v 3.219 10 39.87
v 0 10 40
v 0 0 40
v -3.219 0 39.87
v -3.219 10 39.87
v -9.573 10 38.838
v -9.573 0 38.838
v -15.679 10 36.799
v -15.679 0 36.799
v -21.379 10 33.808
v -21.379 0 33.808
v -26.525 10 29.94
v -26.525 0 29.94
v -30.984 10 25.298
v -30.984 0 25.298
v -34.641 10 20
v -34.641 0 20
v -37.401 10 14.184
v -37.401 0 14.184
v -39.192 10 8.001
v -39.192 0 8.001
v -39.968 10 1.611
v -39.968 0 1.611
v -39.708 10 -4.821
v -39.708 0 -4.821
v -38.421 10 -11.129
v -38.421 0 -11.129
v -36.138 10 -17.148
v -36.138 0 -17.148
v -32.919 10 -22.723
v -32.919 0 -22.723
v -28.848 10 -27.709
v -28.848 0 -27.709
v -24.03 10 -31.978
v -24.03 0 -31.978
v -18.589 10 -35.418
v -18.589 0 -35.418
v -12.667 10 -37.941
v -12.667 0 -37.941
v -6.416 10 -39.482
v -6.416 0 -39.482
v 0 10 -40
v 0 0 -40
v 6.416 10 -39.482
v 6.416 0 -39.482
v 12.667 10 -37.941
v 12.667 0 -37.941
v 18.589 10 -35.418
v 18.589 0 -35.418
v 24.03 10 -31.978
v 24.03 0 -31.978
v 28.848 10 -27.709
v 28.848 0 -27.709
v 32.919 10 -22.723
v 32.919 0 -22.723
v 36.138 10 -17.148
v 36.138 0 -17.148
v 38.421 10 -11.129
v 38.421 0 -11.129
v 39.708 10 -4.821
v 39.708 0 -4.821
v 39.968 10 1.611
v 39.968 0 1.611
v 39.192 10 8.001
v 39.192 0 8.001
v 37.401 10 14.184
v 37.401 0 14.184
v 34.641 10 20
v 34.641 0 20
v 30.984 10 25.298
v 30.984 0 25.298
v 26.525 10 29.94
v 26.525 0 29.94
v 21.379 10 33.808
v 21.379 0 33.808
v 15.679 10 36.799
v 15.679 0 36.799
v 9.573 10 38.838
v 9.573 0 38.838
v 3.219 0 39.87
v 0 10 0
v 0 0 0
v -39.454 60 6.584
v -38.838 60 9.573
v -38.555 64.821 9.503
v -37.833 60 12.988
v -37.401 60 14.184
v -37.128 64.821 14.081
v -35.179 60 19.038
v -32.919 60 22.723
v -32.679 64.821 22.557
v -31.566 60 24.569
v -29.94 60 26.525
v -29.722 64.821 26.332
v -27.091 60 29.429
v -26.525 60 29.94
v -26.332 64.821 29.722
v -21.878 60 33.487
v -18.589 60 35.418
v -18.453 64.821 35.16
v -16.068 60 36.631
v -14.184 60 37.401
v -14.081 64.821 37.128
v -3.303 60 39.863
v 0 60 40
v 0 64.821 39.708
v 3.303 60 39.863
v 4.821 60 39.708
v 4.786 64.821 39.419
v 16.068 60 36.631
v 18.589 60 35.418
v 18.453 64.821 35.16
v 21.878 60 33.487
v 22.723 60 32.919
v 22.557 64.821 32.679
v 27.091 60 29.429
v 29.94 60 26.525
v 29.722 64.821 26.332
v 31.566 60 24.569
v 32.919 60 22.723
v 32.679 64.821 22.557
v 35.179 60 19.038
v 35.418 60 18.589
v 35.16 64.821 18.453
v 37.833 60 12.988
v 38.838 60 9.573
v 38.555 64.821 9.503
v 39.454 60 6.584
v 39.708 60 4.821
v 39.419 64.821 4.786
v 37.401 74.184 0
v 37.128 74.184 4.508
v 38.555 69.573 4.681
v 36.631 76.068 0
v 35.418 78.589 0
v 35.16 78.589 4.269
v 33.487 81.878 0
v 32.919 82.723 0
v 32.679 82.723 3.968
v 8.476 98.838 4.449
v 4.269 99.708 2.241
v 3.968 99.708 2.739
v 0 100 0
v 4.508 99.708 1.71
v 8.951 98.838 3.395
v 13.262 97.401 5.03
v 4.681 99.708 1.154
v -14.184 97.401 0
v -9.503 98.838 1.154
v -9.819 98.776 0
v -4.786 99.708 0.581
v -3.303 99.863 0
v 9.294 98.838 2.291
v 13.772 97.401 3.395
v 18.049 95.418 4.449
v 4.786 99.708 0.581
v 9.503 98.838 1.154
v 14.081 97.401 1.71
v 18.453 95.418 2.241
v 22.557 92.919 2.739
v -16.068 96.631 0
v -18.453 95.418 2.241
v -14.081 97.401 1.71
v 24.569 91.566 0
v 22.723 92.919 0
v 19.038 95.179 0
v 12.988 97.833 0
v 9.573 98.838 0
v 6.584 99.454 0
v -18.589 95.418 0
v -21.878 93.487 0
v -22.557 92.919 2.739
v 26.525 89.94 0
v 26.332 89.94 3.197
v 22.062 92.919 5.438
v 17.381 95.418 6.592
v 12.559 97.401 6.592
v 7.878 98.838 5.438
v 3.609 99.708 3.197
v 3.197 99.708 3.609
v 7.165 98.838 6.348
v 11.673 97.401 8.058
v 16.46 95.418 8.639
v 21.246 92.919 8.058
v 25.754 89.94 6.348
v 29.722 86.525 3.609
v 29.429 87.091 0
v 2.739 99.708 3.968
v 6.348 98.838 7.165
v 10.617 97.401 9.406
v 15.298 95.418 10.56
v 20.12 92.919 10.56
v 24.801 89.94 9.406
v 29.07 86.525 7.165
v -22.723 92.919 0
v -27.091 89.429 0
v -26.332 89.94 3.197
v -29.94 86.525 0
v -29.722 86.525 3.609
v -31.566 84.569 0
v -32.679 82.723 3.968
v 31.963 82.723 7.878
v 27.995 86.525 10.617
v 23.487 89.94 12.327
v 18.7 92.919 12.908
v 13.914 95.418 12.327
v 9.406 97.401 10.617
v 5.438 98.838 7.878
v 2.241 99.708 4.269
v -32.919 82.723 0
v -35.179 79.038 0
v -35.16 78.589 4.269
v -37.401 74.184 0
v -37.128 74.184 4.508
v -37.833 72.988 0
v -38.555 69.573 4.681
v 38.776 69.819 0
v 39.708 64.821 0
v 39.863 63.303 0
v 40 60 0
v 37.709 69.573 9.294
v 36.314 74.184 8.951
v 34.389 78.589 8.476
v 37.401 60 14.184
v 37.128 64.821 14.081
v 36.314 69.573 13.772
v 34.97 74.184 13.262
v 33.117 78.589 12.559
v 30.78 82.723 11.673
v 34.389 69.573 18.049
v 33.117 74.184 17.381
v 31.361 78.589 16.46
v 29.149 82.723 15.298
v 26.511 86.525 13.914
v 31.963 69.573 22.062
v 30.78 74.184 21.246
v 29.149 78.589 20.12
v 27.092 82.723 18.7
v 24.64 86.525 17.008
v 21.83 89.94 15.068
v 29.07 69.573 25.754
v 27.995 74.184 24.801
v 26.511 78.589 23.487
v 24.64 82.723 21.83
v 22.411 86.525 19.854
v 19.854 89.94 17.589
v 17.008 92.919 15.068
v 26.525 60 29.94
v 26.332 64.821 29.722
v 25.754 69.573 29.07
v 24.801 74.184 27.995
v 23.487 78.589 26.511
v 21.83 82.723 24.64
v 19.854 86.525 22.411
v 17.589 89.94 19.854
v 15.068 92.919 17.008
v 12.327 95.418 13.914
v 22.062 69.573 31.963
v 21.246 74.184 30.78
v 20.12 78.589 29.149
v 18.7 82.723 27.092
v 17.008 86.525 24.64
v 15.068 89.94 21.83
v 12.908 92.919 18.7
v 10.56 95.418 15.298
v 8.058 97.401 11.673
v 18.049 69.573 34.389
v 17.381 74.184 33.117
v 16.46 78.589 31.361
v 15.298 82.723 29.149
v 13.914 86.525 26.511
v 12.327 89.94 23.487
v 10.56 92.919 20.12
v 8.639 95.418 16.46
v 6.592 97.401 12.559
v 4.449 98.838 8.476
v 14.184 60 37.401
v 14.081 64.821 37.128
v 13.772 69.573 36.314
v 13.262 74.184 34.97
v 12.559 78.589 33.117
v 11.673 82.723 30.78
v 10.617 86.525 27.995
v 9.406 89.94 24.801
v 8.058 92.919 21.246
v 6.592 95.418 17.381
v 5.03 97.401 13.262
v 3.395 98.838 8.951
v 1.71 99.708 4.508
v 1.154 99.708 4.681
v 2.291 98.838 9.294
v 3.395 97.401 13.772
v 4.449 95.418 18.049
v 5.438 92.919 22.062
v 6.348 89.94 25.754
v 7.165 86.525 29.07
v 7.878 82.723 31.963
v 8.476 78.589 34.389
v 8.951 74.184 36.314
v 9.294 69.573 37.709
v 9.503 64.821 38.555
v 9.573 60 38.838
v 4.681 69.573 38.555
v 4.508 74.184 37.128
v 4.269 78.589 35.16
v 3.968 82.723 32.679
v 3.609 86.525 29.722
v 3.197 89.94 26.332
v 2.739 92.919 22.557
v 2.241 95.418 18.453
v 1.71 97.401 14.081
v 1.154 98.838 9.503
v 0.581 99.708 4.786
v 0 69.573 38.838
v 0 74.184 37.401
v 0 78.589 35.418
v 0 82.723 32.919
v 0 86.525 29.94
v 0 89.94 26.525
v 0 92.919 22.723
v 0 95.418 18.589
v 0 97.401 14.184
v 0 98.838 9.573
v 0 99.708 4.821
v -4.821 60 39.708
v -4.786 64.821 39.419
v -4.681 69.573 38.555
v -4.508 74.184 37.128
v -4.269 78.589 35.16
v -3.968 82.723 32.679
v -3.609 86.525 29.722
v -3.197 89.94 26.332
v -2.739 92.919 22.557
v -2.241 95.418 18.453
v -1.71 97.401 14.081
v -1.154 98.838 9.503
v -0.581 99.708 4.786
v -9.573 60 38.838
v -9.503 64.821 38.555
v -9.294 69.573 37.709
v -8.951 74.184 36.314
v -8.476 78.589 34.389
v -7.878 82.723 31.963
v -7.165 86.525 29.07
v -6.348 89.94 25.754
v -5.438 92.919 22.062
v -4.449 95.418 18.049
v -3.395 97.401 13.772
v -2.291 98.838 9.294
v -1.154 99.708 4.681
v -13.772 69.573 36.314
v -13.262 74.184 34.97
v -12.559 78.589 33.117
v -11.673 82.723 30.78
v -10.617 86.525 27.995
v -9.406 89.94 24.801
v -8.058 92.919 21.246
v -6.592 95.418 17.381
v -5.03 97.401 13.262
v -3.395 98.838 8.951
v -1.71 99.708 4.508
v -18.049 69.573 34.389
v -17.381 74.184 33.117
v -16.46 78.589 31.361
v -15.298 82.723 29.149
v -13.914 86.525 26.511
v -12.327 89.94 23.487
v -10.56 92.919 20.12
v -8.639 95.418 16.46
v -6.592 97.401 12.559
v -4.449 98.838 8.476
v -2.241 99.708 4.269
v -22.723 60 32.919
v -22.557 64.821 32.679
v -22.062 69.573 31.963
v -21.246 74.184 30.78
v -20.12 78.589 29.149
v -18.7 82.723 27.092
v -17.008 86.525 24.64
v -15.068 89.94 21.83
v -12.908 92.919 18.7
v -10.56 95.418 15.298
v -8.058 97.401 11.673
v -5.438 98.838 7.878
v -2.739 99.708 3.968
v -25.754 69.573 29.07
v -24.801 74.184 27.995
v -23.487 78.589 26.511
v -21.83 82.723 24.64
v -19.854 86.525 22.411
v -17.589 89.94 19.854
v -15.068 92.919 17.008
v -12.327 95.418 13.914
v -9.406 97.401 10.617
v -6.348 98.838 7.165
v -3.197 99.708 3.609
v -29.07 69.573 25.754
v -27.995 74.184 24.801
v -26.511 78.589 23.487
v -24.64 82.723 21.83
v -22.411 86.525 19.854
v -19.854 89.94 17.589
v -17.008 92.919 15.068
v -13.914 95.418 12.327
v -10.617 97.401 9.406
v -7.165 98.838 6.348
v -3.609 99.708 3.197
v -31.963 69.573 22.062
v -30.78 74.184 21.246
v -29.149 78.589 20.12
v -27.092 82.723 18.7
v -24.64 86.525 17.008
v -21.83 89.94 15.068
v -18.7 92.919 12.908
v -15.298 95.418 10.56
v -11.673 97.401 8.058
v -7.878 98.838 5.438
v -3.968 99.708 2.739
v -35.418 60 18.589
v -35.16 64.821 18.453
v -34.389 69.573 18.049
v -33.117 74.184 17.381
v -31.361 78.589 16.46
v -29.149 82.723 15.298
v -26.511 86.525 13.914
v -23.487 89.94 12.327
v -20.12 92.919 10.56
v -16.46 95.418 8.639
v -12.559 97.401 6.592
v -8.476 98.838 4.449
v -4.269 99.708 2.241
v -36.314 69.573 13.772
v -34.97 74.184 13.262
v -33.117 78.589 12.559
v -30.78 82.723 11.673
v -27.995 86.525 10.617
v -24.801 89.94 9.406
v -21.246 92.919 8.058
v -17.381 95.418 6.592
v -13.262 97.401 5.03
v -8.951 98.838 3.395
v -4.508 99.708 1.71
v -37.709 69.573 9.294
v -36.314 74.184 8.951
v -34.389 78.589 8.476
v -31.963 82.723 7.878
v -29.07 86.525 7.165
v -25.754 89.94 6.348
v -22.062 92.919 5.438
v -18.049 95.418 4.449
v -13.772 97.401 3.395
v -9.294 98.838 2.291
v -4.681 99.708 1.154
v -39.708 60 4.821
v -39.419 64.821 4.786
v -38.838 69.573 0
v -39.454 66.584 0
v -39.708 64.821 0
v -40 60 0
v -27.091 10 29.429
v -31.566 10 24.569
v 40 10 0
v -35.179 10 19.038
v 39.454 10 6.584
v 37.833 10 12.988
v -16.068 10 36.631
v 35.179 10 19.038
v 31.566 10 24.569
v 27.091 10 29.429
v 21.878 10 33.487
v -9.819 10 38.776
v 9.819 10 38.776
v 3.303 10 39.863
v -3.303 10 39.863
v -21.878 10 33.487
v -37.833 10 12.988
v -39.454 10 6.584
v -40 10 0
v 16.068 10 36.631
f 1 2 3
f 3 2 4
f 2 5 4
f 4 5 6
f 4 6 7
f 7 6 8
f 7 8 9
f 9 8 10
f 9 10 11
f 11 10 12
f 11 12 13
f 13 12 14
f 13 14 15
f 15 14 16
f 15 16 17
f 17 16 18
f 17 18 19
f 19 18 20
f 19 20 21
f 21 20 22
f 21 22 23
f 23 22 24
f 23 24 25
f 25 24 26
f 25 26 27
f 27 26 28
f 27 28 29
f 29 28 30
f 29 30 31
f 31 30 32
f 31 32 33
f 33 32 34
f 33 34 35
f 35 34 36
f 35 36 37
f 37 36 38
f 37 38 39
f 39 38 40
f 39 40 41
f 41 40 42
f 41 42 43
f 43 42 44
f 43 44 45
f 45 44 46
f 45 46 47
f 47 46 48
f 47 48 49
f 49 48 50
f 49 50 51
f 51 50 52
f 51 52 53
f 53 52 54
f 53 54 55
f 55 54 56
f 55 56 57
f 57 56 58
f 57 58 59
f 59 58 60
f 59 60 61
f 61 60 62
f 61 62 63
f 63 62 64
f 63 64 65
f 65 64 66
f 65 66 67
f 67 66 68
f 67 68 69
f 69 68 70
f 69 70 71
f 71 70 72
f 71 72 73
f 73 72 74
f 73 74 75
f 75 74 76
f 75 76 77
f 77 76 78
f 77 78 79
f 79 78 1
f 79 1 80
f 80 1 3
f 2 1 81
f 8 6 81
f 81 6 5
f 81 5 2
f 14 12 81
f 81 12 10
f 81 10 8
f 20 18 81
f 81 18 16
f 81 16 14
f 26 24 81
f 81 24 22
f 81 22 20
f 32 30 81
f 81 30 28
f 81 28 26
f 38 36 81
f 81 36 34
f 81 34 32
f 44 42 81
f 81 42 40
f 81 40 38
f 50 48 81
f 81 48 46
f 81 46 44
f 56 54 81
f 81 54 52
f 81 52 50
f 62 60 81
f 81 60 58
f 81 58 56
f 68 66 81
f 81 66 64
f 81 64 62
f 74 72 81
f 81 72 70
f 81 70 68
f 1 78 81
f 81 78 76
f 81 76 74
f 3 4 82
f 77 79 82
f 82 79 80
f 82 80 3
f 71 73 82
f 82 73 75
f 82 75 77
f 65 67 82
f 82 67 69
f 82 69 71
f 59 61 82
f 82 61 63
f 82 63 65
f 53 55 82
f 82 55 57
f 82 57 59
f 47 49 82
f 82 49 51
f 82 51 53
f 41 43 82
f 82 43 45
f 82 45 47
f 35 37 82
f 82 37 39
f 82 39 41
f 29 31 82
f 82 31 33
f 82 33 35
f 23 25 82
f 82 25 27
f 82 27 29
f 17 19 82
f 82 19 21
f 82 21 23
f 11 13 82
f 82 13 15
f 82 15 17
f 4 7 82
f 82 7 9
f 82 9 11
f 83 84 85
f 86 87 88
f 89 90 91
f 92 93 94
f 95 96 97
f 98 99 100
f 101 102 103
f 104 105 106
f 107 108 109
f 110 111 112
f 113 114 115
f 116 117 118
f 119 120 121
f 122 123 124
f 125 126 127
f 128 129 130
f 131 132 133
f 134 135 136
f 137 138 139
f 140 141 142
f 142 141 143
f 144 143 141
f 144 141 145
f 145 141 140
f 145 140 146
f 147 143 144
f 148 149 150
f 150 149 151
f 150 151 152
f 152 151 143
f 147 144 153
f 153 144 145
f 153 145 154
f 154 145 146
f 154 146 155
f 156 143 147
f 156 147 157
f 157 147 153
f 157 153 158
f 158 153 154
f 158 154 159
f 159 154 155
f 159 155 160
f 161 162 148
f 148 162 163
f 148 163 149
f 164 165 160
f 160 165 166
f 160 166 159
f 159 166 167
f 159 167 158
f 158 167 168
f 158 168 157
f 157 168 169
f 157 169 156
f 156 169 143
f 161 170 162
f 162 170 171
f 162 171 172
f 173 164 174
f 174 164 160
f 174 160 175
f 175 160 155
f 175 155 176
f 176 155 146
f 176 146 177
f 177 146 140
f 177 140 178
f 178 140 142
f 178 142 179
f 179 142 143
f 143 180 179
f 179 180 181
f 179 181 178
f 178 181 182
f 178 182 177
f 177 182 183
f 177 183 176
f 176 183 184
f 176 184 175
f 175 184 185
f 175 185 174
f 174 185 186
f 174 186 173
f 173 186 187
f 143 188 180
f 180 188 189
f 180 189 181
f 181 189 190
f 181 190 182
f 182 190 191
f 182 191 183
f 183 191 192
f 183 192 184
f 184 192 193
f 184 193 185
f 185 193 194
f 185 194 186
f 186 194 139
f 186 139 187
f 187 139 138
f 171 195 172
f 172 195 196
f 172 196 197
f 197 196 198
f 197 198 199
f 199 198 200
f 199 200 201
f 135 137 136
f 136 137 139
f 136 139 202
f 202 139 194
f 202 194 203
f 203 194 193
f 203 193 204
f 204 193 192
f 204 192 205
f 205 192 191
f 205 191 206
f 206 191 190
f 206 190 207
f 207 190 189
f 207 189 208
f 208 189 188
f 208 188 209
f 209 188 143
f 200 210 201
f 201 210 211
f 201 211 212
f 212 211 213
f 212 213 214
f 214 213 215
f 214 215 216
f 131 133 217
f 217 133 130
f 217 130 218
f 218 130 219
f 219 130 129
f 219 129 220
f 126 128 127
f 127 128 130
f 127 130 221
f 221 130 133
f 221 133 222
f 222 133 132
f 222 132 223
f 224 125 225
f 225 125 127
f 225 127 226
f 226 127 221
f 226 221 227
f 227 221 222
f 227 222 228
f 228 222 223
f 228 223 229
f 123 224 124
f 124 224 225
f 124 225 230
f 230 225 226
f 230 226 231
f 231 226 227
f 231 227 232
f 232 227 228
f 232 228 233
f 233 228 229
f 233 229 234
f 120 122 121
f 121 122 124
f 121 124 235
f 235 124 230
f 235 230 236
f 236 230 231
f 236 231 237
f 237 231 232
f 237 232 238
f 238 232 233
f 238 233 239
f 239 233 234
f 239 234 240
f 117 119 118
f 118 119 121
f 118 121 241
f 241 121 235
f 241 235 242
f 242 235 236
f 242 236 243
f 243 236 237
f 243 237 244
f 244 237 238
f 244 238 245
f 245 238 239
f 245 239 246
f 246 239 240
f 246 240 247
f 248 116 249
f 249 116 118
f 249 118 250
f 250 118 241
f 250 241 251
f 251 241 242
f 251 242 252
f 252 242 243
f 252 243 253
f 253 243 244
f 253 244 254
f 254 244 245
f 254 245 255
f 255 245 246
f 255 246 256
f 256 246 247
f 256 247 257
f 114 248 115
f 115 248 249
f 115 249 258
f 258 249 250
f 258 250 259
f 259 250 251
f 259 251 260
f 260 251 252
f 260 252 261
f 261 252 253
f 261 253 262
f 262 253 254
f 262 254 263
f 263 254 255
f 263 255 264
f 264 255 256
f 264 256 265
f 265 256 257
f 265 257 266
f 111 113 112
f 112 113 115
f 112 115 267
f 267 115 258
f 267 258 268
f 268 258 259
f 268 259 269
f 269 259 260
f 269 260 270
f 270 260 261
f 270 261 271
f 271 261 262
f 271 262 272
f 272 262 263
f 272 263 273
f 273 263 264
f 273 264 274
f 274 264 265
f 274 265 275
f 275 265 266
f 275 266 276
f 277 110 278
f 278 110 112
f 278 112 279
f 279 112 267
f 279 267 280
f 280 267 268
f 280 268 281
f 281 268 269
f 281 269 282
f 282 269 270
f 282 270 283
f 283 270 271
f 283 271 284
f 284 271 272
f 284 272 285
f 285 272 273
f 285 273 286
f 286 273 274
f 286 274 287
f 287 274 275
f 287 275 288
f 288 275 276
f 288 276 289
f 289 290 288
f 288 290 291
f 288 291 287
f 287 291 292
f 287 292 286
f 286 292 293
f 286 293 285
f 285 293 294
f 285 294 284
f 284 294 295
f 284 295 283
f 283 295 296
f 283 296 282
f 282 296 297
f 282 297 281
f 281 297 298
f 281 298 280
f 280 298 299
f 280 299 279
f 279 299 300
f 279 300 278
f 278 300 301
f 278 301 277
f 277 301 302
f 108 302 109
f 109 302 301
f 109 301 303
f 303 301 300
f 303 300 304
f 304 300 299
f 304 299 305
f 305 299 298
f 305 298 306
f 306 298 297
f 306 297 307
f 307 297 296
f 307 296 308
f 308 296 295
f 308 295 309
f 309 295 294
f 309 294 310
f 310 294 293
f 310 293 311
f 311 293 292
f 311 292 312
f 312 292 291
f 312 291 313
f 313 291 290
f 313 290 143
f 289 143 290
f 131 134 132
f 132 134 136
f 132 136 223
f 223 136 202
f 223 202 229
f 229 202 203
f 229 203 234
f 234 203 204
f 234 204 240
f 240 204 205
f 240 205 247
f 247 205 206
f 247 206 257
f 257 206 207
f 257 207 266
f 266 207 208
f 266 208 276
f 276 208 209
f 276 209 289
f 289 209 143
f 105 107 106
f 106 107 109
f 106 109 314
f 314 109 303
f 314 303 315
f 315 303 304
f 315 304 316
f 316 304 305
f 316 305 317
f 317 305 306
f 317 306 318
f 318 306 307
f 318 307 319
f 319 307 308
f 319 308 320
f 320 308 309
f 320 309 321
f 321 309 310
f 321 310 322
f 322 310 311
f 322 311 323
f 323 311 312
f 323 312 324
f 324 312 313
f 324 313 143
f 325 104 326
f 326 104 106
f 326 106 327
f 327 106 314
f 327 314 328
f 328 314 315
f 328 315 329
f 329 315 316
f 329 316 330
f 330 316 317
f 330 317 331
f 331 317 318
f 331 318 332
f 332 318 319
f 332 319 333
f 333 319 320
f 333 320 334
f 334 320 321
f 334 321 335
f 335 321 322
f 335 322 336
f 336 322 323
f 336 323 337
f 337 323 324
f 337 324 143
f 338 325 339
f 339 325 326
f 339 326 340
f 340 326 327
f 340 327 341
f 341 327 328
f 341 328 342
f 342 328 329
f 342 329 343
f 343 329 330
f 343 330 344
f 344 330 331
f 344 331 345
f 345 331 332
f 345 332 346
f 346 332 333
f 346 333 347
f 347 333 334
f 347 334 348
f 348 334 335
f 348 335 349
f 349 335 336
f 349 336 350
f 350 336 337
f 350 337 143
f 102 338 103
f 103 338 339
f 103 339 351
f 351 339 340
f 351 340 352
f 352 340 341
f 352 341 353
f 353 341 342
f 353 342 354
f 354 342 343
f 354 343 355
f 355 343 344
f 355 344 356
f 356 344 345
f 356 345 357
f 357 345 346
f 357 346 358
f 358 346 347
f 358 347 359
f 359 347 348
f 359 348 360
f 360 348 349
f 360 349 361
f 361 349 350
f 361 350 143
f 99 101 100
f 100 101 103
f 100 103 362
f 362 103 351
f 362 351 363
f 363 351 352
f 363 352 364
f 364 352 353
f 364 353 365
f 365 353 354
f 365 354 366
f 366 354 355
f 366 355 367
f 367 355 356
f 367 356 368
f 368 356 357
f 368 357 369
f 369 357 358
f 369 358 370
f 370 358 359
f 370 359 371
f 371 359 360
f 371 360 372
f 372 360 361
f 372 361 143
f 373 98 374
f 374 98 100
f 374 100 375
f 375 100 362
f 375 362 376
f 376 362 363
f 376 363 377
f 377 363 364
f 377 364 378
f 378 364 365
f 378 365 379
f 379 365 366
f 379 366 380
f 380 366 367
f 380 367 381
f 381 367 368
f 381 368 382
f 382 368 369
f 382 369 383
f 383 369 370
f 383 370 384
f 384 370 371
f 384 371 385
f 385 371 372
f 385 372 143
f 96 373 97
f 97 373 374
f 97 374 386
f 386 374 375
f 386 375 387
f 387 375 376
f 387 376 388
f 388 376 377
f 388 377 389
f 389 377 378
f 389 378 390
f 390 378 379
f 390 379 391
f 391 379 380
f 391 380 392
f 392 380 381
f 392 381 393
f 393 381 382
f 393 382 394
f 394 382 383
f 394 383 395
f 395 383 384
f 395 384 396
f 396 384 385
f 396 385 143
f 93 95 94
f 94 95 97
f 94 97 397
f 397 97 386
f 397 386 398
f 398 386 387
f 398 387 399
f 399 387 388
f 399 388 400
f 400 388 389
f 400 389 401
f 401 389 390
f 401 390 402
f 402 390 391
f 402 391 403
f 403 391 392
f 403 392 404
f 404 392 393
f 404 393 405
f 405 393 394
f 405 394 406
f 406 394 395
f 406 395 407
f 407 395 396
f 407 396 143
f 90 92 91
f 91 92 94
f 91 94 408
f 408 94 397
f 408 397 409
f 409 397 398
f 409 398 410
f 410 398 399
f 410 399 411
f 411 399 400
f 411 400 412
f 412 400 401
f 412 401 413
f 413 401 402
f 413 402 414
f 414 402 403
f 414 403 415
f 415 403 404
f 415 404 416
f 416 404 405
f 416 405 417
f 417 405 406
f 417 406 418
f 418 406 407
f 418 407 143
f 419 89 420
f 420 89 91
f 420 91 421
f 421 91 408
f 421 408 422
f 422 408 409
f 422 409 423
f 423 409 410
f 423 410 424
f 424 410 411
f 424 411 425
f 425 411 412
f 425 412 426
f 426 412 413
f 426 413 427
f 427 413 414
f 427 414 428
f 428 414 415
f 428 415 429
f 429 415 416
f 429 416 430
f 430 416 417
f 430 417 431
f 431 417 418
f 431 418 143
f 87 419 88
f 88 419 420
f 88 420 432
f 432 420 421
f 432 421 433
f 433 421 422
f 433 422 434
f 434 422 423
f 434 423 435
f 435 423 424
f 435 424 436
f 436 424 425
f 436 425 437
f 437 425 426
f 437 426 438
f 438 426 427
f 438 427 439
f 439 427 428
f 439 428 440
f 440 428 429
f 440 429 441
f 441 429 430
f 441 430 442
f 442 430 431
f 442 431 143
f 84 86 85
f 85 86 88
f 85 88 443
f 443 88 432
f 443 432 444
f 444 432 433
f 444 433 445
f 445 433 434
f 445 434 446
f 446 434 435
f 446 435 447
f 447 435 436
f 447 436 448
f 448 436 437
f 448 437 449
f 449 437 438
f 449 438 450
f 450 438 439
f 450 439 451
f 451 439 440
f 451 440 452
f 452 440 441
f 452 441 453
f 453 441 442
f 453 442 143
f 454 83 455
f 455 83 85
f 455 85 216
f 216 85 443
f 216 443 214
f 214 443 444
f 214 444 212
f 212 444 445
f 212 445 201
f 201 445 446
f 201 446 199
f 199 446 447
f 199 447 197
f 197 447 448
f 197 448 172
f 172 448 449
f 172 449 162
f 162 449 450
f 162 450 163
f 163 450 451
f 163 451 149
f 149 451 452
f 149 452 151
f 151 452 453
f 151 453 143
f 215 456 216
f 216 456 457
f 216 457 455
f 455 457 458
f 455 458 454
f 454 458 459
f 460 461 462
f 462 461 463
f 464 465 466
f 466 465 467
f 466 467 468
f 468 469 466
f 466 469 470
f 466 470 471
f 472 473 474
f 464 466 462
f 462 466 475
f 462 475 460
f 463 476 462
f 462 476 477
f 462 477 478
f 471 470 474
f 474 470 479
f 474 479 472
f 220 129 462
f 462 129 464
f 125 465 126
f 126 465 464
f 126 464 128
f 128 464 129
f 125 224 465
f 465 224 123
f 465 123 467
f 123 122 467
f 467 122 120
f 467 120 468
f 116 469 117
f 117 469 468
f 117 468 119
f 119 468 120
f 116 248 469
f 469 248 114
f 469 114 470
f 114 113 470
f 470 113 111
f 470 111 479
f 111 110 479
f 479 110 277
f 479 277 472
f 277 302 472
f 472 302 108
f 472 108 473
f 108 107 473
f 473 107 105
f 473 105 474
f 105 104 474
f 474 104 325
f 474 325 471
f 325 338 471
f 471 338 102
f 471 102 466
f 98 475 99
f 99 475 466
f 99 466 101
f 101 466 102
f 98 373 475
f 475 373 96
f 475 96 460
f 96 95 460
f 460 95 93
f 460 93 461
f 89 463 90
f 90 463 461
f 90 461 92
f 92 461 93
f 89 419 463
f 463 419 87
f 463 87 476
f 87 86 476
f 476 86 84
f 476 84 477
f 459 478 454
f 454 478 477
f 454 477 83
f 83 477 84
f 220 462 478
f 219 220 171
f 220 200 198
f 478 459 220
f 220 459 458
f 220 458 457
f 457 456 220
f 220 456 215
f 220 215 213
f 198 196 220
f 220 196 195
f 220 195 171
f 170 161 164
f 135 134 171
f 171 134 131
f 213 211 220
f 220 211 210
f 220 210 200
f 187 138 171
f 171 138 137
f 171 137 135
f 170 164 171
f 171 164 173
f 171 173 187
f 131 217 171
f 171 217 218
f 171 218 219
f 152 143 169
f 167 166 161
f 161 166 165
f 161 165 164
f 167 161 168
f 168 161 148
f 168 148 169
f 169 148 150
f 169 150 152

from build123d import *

# Parameters (mm, degrees)
SKETCH_1_R      = 40
EXTRUDE_1_DEPTH = 10
REVOLVE_1_ANGLE = 180


with BuildPart() as part:
    # 草图1 → 凸台-拉伸1 (new body)
    with BuildSketch(Plane(origin=(0, 0, 0), x_dir=(1, 0, 0), z_dir=(0, 1, 0))):
        Circle(SKETCH_1_R)
    extrude(amount=EXTRUDE_1_DEPTH)


with BuildPart() as body_2:
    # 草图2 → 旋转1 (revolve)
    with BuildSketch(Plane.XY):
        with BuildLine():
            ThreePointArc((40, 60), (28.284271247, 88.284271247), (0, 100))
            Line((0, 100), (0, 10))
            Line((0, 10), (40, 10))
            Line((40, 10), (40, 60))
        make_face()
    revolve(axis=Axis((0, 111.976558556, 0), (0, -1, 0)), revolution_arc=REVOLVE_1_ANGLE)


solid = Compound([part.part, body_2.part])
